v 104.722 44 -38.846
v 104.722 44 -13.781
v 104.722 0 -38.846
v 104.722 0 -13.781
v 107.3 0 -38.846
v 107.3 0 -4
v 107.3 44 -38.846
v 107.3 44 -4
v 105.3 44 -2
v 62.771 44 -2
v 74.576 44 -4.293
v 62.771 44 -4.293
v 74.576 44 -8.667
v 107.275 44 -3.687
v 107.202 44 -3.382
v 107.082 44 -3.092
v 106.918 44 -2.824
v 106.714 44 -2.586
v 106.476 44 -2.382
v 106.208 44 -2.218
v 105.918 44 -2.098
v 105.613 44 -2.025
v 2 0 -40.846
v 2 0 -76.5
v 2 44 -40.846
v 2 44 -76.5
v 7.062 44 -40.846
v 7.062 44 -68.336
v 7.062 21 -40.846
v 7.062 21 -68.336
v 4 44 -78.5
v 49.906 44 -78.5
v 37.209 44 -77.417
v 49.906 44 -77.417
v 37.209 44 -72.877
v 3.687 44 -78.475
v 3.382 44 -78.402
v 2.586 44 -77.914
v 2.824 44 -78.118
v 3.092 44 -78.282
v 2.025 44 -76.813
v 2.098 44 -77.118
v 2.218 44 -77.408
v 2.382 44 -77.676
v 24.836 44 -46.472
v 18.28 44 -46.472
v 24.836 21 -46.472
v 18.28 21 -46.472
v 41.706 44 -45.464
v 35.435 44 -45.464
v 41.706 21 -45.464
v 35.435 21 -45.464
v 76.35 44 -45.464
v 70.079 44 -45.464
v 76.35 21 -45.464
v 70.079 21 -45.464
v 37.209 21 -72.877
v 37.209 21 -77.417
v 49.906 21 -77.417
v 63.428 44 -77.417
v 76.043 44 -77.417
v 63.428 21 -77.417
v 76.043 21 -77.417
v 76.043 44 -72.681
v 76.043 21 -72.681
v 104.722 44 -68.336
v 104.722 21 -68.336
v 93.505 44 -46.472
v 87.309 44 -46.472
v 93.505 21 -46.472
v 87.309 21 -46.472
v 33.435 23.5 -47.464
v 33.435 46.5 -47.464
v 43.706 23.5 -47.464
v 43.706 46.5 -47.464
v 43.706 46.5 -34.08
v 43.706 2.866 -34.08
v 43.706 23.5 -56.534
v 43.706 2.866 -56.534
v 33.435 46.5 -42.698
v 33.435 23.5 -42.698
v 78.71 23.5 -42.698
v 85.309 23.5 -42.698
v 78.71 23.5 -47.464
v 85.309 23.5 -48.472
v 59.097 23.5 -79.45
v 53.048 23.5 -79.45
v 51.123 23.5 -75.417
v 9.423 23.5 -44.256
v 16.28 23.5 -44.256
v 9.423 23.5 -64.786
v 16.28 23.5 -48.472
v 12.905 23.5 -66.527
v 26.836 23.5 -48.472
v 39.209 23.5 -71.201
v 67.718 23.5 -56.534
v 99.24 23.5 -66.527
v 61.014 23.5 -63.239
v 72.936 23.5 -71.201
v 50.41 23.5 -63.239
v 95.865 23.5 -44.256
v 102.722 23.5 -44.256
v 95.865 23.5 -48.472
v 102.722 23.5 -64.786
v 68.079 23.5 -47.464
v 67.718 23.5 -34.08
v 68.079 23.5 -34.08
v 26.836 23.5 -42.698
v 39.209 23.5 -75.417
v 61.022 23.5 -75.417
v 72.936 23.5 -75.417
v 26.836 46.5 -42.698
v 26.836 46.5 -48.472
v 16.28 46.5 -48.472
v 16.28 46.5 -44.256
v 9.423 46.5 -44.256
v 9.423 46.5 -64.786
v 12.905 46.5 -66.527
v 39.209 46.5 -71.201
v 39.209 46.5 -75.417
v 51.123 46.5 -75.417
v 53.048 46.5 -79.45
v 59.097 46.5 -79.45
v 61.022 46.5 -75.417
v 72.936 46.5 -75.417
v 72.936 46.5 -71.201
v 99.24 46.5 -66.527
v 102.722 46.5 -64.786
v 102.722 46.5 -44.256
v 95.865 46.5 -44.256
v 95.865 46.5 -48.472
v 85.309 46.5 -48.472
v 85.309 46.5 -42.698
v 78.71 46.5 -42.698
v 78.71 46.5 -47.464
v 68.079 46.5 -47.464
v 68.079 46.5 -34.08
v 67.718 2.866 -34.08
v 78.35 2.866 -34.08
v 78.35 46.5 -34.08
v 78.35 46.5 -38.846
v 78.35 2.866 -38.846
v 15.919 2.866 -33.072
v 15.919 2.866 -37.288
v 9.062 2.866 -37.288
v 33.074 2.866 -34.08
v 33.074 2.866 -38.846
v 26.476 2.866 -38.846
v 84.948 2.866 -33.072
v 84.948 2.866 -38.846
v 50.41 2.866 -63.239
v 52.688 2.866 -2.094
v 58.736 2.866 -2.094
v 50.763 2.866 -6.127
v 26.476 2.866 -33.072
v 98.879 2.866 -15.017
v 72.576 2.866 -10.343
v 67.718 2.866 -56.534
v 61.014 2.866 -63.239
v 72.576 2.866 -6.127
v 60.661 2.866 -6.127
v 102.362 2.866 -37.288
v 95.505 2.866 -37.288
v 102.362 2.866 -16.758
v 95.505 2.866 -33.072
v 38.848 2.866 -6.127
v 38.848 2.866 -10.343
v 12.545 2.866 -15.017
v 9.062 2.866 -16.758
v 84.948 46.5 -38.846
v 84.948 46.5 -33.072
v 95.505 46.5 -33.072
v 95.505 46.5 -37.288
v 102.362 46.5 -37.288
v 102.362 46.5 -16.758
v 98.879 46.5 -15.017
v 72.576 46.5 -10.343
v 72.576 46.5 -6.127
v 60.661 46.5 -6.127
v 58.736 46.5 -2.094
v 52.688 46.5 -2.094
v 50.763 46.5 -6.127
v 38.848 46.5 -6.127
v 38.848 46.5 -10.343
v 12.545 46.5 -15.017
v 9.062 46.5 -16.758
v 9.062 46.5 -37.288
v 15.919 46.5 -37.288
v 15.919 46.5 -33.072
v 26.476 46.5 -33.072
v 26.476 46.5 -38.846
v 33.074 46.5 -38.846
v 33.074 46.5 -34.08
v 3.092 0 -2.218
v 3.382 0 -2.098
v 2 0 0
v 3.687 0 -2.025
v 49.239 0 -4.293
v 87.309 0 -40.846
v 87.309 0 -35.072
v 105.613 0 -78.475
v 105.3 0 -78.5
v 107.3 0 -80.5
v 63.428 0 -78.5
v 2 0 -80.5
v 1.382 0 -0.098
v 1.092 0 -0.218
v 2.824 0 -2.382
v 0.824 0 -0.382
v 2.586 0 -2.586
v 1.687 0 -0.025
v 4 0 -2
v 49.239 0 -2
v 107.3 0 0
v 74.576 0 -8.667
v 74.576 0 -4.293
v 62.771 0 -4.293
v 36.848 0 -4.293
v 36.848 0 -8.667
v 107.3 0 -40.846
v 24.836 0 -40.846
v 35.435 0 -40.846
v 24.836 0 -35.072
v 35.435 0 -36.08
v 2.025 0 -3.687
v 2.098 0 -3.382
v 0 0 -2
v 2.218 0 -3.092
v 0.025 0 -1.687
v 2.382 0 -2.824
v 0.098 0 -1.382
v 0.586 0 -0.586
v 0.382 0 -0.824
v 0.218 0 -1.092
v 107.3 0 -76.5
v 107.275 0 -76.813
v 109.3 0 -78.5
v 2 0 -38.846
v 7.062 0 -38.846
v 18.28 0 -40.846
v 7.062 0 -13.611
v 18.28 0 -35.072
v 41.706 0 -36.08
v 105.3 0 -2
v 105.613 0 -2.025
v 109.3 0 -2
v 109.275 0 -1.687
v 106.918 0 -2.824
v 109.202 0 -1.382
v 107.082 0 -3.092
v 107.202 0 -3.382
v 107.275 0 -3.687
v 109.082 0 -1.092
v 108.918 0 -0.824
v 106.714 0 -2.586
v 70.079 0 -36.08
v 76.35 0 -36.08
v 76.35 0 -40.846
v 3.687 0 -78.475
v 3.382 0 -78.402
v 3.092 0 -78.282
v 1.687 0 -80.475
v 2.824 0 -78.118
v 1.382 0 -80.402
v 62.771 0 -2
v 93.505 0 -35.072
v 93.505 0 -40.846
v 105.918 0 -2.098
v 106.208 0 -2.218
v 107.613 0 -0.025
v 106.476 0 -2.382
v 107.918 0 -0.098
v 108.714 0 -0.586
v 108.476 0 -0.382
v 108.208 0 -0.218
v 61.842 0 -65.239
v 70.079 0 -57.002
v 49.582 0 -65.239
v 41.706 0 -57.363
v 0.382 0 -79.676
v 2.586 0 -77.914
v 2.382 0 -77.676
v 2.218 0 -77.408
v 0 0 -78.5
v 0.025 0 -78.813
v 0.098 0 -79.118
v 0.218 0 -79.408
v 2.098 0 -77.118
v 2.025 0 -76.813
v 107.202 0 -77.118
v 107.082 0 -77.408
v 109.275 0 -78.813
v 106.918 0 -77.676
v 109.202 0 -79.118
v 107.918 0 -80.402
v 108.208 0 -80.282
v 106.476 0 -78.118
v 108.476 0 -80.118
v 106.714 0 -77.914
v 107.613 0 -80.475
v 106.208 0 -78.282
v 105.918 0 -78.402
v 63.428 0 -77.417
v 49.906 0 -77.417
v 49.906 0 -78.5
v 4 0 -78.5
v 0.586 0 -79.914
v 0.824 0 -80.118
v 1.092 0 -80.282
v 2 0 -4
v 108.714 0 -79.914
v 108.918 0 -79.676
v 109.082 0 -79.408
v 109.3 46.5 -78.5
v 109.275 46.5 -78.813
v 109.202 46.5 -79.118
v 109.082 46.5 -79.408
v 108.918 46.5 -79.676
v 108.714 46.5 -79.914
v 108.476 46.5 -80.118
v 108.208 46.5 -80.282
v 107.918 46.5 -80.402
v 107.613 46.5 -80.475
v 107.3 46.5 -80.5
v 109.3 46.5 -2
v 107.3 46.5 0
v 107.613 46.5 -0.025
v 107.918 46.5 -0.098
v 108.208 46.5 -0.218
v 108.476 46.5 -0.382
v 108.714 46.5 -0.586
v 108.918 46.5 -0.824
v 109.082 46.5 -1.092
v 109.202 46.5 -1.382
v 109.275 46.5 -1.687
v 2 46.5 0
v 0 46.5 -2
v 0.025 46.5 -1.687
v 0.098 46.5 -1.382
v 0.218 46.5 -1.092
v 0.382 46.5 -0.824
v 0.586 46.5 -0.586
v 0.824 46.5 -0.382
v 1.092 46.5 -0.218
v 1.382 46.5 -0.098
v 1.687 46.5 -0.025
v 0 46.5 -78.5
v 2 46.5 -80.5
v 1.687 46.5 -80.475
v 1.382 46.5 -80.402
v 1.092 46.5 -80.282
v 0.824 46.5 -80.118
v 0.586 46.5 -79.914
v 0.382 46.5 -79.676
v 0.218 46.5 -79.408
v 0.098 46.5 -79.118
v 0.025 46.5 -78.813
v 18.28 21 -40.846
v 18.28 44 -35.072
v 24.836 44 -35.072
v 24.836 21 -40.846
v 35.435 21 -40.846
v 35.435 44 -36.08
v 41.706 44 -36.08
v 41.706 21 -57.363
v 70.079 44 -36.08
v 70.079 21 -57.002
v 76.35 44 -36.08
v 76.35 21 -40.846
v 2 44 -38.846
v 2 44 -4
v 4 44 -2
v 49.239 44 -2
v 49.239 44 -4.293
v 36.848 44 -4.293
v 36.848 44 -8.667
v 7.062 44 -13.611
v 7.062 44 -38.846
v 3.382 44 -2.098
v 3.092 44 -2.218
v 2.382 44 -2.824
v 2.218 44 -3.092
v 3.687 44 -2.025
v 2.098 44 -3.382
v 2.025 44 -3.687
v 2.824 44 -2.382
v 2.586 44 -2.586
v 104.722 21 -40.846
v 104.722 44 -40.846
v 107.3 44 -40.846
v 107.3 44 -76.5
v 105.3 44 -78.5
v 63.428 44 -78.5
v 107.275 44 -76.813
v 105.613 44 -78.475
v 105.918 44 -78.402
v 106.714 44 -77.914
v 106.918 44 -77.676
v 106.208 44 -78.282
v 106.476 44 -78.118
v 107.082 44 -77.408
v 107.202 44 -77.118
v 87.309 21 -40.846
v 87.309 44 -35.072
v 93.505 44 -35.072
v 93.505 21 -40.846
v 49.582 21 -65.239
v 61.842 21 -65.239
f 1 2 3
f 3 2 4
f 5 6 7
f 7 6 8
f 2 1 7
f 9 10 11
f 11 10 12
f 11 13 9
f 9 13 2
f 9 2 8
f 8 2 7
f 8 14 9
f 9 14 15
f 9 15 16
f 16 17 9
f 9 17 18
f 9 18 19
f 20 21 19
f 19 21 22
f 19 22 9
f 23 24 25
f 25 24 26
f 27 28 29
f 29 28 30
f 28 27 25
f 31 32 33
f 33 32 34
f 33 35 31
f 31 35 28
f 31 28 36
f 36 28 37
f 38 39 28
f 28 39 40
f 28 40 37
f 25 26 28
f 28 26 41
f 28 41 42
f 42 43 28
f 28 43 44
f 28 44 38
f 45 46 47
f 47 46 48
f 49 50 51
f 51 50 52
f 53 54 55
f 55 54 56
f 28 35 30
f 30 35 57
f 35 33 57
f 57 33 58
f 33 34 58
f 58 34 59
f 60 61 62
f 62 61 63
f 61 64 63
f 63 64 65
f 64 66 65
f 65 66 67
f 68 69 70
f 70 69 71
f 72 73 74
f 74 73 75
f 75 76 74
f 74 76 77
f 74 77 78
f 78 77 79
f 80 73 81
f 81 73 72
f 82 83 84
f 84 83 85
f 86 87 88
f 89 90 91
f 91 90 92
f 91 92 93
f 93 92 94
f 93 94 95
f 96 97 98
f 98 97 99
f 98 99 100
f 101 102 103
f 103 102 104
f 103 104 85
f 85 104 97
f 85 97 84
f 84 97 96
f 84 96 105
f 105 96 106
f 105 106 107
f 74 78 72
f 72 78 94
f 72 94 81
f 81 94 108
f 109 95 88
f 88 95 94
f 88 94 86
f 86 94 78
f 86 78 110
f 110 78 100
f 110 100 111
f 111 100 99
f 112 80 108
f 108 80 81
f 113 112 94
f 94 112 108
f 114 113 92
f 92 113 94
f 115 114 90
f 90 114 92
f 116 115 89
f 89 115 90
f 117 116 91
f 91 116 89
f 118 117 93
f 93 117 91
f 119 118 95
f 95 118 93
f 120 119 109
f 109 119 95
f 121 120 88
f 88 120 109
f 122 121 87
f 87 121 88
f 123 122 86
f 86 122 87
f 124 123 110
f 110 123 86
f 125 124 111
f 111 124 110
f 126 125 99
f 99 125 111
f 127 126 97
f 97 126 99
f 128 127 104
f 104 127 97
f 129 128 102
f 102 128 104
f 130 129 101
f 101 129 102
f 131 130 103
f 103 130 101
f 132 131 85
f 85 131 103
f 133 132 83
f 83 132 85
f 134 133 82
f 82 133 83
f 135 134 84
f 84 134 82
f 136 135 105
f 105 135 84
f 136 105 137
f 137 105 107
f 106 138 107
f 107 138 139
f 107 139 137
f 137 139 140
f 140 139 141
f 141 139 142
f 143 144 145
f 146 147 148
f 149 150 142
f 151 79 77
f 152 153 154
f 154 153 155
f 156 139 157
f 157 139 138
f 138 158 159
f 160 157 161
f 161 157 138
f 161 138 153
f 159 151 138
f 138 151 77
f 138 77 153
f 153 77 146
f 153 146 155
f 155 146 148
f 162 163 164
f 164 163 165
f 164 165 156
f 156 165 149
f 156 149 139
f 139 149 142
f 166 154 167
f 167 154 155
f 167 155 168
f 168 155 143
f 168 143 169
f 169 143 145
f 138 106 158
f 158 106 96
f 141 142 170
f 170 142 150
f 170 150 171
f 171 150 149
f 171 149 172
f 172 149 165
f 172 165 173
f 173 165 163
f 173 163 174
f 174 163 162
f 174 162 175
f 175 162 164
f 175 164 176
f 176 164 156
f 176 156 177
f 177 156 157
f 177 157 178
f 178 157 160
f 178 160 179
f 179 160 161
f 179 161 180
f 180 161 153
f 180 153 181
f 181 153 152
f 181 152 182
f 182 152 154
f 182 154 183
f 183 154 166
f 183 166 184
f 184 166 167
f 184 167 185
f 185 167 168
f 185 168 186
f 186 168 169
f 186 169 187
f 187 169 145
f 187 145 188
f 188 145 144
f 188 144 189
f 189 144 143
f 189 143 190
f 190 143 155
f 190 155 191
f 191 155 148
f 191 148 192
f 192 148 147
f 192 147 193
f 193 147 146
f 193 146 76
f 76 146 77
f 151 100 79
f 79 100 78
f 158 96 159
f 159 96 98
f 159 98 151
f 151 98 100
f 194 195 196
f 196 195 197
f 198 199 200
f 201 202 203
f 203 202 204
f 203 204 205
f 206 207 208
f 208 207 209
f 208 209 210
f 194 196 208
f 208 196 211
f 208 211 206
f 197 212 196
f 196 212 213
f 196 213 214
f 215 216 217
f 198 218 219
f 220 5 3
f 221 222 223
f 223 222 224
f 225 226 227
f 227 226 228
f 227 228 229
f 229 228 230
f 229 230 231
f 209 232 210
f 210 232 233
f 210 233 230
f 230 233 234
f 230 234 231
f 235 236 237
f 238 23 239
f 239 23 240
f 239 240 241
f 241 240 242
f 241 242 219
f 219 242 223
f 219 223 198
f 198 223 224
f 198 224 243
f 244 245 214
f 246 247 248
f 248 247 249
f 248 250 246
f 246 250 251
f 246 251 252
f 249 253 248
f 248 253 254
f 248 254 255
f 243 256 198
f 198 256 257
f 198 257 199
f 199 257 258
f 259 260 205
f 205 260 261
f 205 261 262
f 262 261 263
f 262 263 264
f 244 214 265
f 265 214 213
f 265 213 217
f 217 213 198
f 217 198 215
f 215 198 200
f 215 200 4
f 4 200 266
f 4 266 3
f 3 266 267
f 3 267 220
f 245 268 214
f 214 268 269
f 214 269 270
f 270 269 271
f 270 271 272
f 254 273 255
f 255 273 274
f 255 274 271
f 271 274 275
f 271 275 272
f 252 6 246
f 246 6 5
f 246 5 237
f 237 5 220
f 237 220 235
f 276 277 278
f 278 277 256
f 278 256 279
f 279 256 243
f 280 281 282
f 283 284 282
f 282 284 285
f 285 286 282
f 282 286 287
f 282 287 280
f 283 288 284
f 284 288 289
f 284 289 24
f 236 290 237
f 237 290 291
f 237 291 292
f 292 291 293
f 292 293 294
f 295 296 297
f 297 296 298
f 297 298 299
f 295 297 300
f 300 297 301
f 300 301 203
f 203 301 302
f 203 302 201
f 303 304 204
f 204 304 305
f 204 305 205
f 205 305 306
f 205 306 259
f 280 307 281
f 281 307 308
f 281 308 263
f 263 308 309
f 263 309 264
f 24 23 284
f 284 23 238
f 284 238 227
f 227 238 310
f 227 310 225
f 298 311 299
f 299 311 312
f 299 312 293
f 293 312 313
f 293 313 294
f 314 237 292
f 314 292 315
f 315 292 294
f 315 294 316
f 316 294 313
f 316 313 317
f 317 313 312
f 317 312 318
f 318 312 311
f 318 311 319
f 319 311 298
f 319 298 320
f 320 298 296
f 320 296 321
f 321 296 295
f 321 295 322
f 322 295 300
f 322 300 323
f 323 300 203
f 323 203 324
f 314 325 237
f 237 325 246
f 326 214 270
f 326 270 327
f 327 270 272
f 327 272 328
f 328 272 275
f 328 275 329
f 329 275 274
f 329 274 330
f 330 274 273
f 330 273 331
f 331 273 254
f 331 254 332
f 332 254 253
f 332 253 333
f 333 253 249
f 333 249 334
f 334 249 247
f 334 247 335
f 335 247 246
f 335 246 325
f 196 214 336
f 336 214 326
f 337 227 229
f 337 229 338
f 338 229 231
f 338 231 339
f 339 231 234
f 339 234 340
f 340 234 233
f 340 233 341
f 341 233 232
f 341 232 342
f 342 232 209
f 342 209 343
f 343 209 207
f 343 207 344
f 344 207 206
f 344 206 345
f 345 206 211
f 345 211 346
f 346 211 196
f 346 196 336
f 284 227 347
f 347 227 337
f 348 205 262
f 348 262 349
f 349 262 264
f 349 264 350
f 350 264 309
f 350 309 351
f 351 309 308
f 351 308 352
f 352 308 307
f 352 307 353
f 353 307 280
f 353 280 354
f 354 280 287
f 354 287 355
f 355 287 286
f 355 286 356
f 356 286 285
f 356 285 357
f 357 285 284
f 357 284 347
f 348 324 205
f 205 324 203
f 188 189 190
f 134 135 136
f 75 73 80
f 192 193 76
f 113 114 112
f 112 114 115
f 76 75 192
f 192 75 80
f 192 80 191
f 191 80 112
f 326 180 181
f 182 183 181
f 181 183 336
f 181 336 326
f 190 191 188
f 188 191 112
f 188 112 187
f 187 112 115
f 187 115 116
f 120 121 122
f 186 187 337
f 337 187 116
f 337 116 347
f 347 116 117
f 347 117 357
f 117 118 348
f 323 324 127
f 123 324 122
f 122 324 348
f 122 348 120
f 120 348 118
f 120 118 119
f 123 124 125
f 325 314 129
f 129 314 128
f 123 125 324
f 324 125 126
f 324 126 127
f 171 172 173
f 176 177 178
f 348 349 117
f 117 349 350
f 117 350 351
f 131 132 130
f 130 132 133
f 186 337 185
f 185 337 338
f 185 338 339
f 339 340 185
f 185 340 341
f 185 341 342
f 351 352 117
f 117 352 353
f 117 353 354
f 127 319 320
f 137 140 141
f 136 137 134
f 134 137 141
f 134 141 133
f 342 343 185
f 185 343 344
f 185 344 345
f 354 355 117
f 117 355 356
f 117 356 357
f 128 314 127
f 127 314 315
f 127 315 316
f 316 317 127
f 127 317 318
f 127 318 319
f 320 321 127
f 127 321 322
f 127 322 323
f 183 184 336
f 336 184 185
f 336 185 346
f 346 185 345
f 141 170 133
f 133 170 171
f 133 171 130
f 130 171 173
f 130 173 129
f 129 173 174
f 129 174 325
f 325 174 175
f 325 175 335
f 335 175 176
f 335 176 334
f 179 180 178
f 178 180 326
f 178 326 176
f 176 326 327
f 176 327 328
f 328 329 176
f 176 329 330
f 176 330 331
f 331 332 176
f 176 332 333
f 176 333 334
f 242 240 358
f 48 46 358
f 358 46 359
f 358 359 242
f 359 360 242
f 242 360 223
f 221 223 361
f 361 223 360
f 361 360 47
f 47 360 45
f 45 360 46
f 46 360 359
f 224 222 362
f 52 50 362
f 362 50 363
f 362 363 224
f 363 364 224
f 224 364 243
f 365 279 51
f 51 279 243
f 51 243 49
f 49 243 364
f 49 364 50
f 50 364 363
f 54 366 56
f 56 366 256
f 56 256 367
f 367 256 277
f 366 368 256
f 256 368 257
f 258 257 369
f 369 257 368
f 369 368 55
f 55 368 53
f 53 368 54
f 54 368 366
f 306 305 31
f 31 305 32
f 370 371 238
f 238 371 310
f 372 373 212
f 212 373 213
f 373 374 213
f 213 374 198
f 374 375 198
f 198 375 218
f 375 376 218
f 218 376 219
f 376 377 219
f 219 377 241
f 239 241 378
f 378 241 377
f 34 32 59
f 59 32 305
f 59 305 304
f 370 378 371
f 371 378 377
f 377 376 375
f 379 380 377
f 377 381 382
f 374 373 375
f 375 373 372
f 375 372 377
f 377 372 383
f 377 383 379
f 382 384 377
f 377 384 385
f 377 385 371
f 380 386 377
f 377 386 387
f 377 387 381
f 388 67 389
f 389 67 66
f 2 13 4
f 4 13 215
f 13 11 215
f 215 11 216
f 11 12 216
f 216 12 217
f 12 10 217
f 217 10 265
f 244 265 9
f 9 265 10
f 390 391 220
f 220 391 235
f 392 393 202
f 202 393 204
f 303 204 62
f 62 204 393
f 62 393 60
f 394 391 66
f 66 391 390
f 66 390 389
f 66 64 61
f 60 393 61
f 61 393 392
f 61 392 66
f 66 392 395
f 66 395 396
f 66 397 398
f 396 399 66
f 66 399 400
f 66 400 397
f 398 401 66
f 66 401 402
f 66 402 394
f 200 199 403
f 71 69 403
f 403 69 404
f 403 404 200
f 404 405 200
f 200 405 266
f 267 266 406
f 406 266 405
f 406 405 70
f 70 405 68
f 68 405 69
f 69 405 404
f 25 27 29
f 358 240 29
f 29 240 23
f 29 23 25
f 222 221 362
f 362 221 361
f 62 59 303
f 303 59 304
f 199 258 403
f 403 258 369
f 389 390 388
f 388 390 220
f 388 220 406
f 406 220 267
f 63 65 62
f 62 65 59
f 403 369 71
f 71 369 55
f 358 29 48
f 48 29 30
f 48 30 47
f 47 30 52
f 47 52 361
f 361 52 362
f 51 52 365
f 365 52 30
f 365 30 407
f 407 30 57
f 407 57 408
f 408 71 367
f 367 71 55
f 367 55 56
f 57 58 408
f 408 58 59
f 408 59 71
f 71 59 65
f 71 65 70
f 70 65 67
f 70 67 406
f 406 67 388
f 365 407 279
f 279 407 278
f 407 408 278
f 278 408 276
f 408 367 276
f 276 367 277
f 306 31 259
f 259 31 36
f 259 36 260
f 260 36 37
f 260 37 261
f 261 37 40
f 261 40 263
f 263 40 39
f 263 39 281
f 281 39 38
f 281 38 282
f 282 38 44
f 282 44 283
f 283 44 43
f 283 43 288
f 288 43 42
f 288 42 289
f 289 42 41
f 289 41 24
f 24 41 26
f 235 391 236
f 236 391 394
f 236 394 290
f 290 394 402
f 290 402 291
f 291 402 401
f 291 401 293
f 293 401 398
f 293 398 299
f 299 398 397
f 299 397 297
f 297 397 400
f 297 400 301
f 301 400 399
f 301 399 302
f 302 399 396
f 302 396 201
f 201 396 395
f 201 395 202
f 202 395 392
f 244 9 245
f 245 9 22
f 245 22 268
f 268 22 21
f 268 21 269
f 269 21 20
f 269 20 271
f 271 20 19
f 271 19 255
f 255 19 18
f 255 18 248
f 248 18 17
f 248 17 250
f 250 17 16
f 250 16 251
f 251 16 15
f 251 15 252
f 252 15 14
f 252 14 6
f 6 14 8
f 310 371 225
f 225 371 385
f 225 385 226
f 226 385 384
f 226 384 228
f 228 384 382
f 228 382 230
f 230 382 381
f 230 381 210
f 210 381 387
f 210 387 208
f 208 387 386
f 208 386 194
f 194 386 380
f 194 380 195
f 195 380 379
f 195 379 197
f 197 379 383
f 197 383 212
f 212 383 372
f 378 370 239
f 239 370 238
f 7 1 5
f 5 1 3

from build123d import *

# Parameters (mm, degrees)
SKETCH1_W             = 109.3
SKETCH1_H             = 80.5
BOSS_EXTRUDE3_DEPTH   = 46.5
FILLET2_R             = 2
FILLET3_R             = 2
FILLET4_R             = 2
FILLET5_R             = 2
K_WING_BLANK_START    = -12.90763076
K_WING_BLANK_DEPTH    = 23
BODY_MOVE_COPY6_ANGLE = 180
SKETCH5_W             = 6.556087763
SKETCH5_H             = 11.400081804
SKETCH5_W_2           = 6.270941902
SKETCH5_H_2           = 9.38377574
SKETCH5_W_3           = 6.195597691
CUT_EXTRUDE3_DEPTH    = 44
CUT_EXTRUDE4_DEPTH    = 21
FILLET7_R             = 2
SKETCH8_W             = 5.062019344
SKETCH8_H             = 2
SKETCH8_W_2           = 2.577509977
BOSS_EXTRUDE5_DEPTH   = 44


with BuildPart() as part:
    # Sketch1 → Boss-Extrude3 (new body)
    with BuildSketch(Plane(origin=(0, 0, 0), x_dir=(1, 0, 0), z_dir=(0, 1, 0))):
        with Locations((54.65, 40.25)):
            Rectangle(SKETCH1_W, SKETCH1_H)
    extrude(amount=BOSS_EXTRUDE3_DEPTH)

    # Fillet2
    fillet2_edges = [part.edges().sort_by_distance(p)[0] for p in [
        (109.3, 23.25, 0),
    ]]
    fillet(fillet2_edges, radius=FILLET2_R)

    # Fillet3
    fillet3_edges = [part.edges().sort_by_distance(p)[0] for p in [
        (0, 23.25, 0),
    ]]
    fillet(fillet3_edges, radius=FILLET3_R)

    # Fillet4
    fillet4_edges = [part.edges().sort_by_distance(p)[0] for p in [
        (109.3, 23.25, -80.5),
    ]]
    fillet(fillet4_edges, radius=FILLET4_R)

    # Fillet5
    fillet5_edges = [part.edges().sort_by_distance(p)[0] for p in [
        (0, 23.25, -80.5),
    ]]
    fillet(fillet5_edges, radius=FILLET5_R)


with BuildPart() as body_2:
    # K-Wing_Blank: read off the stored shape, not the designer's step
    # K-Wing_Blank outline → K-Wing_Blank (new body)
    with BuildSketch(Plane(origin=(0, 0, 0), x_dir=(1, 0, 0), z_dir=(0, 1, 0)).offset(K_WING_BLANK_START)):
        Polygon((-105.401168796, 111.360944086), (-105.401168796, 90.831282342), (-98.543704187, 90.831282342), (-98.543704187, 95.047195022), (-87.987616423, 95.047195022), (-87.987616423, 89.273227656), (-81.388796577, 89.273227656), (-81.388796577, 94.03904199), (-70.757364602, 94.03904199), (-70.757364602, 71.584724457), (-64.053188187, 64.880548042), (-53.449168798, 64.880548042), (-46.744992383, 71.584724457), (-46.744992383, 94.03904199), (-36.113560409, 94.03904199), (-36.113560409, 89.273227656), (-29.514740562, 89.273227656), (-29.514740562, 95.047195022), (-18.958652799, 95.047195022), (-18.958652799, 90.831282342), (-12.10118819, 90.831282342), (-12.10118819, 111.360944086), (-15.583898664, 113.102299324), (-41.887527774, 117.776463381), (-41.887527774, 121.992376061), (-53.802063608, 121.992376061), (-55.726719397, 126.024988189), (-61.775637589, 126.024988189), (-63.700293378, 121.992376061), (-75.614829211, 121.992376061), (-75.614829211, 117.776463381), (-101.918458321, 113.102299324), align=None)
    extrude(amount=K_WING_BLANK_DEPTH)


with BuildPart() as body_2_1:
    # Body-Move/Copy2: read off the stored shape, not the designer's step
    # Body-Move/Copy2: moved
    add(body_2.part.moved(Location((0, 36.4076308, 0))))


with BuildPart() as body_3:
    # Body-Move/Copy3: copy of body 2
    add(body_2_1.part.moved(Location((114.823678212, 0, 43.931811975))))


with BuildPart() as body_4:
    # Body-Move/Copy4: copy of body 2
    add(body_2_1.part.moved(Location((0, 20.633658037, 0))))


with BuildPart() as body_2_2:
    add(body_2_1.part)

    # Combine1: union body 4
    add(body_4.part)


with BuildPart() as body_2_3:
    # Body-Move/Copy6: moved
    add(body_2_2.part.rotate(Axis((-58.751178493, 0, -95.452768116), (0, 1, 0)), BODY_MOVE_COPY6_ANGLE))


with BuildPart() as body_2_4:
    # Body-Move/Copy8: moved
    add(body_2_3.part.moved(Location((114.46318814, 0, 60.098511736))))


with BuildPart() as body_3_1:
    # Body-Move/Copy9: moved
    add(body_3.part.moved(Location((0, 0, 2.643287199))))


with BuildPart() as body_2_5:
    # Body-Move/Copy10: moved
    add(body_2_4.part.moved(Location((0, 0, 2.68781543))))


with BuildPart() as body_2_6:
    # Body-Move/Copy11: read off the stored shape, not the designer's step
    # Body-Move/Copy11: moved
    add(body_2_5.part.moved(Location((0, -20.633658, 0))))


with BuildPart() as part_1:
    add(part.part)

    # Intersect3: read off the stored shape, not the designer's step
    # Intersect3: cut body 2, body 3
    add(body_2_6.part, mode=Mode.SUBTRACT)
    add(body_3_1.part, mode=Mode.SUBTRACT)

    # Sketch5 → Cut-Extrude3 (cut)
    with BuildSketch(Plane(origin=(0, 0, 0), x_dir=(-1, 0, 0), z_dir=(0, -1, 0))):
        Polygon((-63.428440073, 77.417276886), (-63.428440073, 78.5), (-107.3, 78.5), (-107.3, 2), (-62.771429167, 2), (-62.771429167, 4.292909509), (-74.575660365, 4.292909509), (-74.575660365, 8.66681439), (-104.722490023, 13.780837435), (-104.722490023, 68.336423007), (-76.04307152, 72.680595238), (-76.04307152, 77.417276886), align=None)
        with Locations((-21.558017908, 40.772054945)):
            Rectangle(SKETCH5_W, SKETCH5_H)
        with Locations((-38.570352587, 40.772054945)):
            Rectangle(SKETCH5_W_2, SKETCH5_H_2)
        with Locations((-73.21415678, 40.772054945)):
            Rectangle(SKETCH5_W_2, SKETCH5_H_2)
        with Locations((-90.406736496, 40.772054945)):
            Rectangle(SKETCH5_W_3, SKETCH5_H)
        Polygon((-49.906036037, 78.5), (-49.906036037, 77.417276886), (-37.208849001, 77.417276886), (-37.208849001, 72.8772955), (-7.062019344, 68.336423007), (-7.062019344, 13.610599493), (-36.848358928, 8.66681439), (-36.848358928, 4.292909509), (-49.238580109, 4.292909509), (-49.238580109, 2), (-2, 2), (-2, 78.5), align=None)
    extrude(amount=-CUT_EXTRUDE3_DEPTH, mode=Mode.SUBTRACT)

    # Sketch6 → Cut-Extrude4 (cut)
    with BuildSketch(Plane(origin=(0, 0, 0), x_dir=(-1, 0, 0), z_dir=(0, -1, 0))):
        Polygon((-41.705823538, 40.845981409), (-7.062019344, 40.845981409), (-7.062019344, 68.336423007), (-37.208849001, 72.8772955), (-37.208849001, 77.417276886), (-76.04307152, 77.417276886), (-76.04307152, 72.680595238), (-104.722490023, 68.336423007), (-104.722490023, 40.845981409), (-70.078685829, 40.845981409), (-70.078685829, 57.00242166), (-61.842446466, 65.238661023), (-49.581572828, 65.238661023), (-41.705823538, 57.362911733), align=None)
    extrude(amount=-CUT_EXTRUDE4_DEPTH, mode=Mode.SUBTRACT)

    # Fillet7
    fillet7_edges = [part_1.edges().sort_by_distance(p)[0] for p in [
        (107.3, 22, -2),
        (107.3, 22, -78.5),
        (2, 22, -78.5),
        (2, 22, -2),
    ]]
    fillet(fillet7_edges, radius=FILLET7_R)

    # Sketch8 → Boss-Extrude5 (add)
    with BuildSketch(Plane(origin=(0, 0, 0), x_dir=(-1, 0, 0), z_dir=(0, -1, 0))):
        with Locations((-4.531009672, 39.845981409)):
            Rectangle(SKETCH8_W, SKETCH8_H)
        with Locations((-106.011245012, 39.845981409)):
            Rectangle(SKETCH8_W_2, SKETCH8_H)
    extrude(amount=-BOSS_EXTRUDE5_DEPTH)


solid = part_1.part
